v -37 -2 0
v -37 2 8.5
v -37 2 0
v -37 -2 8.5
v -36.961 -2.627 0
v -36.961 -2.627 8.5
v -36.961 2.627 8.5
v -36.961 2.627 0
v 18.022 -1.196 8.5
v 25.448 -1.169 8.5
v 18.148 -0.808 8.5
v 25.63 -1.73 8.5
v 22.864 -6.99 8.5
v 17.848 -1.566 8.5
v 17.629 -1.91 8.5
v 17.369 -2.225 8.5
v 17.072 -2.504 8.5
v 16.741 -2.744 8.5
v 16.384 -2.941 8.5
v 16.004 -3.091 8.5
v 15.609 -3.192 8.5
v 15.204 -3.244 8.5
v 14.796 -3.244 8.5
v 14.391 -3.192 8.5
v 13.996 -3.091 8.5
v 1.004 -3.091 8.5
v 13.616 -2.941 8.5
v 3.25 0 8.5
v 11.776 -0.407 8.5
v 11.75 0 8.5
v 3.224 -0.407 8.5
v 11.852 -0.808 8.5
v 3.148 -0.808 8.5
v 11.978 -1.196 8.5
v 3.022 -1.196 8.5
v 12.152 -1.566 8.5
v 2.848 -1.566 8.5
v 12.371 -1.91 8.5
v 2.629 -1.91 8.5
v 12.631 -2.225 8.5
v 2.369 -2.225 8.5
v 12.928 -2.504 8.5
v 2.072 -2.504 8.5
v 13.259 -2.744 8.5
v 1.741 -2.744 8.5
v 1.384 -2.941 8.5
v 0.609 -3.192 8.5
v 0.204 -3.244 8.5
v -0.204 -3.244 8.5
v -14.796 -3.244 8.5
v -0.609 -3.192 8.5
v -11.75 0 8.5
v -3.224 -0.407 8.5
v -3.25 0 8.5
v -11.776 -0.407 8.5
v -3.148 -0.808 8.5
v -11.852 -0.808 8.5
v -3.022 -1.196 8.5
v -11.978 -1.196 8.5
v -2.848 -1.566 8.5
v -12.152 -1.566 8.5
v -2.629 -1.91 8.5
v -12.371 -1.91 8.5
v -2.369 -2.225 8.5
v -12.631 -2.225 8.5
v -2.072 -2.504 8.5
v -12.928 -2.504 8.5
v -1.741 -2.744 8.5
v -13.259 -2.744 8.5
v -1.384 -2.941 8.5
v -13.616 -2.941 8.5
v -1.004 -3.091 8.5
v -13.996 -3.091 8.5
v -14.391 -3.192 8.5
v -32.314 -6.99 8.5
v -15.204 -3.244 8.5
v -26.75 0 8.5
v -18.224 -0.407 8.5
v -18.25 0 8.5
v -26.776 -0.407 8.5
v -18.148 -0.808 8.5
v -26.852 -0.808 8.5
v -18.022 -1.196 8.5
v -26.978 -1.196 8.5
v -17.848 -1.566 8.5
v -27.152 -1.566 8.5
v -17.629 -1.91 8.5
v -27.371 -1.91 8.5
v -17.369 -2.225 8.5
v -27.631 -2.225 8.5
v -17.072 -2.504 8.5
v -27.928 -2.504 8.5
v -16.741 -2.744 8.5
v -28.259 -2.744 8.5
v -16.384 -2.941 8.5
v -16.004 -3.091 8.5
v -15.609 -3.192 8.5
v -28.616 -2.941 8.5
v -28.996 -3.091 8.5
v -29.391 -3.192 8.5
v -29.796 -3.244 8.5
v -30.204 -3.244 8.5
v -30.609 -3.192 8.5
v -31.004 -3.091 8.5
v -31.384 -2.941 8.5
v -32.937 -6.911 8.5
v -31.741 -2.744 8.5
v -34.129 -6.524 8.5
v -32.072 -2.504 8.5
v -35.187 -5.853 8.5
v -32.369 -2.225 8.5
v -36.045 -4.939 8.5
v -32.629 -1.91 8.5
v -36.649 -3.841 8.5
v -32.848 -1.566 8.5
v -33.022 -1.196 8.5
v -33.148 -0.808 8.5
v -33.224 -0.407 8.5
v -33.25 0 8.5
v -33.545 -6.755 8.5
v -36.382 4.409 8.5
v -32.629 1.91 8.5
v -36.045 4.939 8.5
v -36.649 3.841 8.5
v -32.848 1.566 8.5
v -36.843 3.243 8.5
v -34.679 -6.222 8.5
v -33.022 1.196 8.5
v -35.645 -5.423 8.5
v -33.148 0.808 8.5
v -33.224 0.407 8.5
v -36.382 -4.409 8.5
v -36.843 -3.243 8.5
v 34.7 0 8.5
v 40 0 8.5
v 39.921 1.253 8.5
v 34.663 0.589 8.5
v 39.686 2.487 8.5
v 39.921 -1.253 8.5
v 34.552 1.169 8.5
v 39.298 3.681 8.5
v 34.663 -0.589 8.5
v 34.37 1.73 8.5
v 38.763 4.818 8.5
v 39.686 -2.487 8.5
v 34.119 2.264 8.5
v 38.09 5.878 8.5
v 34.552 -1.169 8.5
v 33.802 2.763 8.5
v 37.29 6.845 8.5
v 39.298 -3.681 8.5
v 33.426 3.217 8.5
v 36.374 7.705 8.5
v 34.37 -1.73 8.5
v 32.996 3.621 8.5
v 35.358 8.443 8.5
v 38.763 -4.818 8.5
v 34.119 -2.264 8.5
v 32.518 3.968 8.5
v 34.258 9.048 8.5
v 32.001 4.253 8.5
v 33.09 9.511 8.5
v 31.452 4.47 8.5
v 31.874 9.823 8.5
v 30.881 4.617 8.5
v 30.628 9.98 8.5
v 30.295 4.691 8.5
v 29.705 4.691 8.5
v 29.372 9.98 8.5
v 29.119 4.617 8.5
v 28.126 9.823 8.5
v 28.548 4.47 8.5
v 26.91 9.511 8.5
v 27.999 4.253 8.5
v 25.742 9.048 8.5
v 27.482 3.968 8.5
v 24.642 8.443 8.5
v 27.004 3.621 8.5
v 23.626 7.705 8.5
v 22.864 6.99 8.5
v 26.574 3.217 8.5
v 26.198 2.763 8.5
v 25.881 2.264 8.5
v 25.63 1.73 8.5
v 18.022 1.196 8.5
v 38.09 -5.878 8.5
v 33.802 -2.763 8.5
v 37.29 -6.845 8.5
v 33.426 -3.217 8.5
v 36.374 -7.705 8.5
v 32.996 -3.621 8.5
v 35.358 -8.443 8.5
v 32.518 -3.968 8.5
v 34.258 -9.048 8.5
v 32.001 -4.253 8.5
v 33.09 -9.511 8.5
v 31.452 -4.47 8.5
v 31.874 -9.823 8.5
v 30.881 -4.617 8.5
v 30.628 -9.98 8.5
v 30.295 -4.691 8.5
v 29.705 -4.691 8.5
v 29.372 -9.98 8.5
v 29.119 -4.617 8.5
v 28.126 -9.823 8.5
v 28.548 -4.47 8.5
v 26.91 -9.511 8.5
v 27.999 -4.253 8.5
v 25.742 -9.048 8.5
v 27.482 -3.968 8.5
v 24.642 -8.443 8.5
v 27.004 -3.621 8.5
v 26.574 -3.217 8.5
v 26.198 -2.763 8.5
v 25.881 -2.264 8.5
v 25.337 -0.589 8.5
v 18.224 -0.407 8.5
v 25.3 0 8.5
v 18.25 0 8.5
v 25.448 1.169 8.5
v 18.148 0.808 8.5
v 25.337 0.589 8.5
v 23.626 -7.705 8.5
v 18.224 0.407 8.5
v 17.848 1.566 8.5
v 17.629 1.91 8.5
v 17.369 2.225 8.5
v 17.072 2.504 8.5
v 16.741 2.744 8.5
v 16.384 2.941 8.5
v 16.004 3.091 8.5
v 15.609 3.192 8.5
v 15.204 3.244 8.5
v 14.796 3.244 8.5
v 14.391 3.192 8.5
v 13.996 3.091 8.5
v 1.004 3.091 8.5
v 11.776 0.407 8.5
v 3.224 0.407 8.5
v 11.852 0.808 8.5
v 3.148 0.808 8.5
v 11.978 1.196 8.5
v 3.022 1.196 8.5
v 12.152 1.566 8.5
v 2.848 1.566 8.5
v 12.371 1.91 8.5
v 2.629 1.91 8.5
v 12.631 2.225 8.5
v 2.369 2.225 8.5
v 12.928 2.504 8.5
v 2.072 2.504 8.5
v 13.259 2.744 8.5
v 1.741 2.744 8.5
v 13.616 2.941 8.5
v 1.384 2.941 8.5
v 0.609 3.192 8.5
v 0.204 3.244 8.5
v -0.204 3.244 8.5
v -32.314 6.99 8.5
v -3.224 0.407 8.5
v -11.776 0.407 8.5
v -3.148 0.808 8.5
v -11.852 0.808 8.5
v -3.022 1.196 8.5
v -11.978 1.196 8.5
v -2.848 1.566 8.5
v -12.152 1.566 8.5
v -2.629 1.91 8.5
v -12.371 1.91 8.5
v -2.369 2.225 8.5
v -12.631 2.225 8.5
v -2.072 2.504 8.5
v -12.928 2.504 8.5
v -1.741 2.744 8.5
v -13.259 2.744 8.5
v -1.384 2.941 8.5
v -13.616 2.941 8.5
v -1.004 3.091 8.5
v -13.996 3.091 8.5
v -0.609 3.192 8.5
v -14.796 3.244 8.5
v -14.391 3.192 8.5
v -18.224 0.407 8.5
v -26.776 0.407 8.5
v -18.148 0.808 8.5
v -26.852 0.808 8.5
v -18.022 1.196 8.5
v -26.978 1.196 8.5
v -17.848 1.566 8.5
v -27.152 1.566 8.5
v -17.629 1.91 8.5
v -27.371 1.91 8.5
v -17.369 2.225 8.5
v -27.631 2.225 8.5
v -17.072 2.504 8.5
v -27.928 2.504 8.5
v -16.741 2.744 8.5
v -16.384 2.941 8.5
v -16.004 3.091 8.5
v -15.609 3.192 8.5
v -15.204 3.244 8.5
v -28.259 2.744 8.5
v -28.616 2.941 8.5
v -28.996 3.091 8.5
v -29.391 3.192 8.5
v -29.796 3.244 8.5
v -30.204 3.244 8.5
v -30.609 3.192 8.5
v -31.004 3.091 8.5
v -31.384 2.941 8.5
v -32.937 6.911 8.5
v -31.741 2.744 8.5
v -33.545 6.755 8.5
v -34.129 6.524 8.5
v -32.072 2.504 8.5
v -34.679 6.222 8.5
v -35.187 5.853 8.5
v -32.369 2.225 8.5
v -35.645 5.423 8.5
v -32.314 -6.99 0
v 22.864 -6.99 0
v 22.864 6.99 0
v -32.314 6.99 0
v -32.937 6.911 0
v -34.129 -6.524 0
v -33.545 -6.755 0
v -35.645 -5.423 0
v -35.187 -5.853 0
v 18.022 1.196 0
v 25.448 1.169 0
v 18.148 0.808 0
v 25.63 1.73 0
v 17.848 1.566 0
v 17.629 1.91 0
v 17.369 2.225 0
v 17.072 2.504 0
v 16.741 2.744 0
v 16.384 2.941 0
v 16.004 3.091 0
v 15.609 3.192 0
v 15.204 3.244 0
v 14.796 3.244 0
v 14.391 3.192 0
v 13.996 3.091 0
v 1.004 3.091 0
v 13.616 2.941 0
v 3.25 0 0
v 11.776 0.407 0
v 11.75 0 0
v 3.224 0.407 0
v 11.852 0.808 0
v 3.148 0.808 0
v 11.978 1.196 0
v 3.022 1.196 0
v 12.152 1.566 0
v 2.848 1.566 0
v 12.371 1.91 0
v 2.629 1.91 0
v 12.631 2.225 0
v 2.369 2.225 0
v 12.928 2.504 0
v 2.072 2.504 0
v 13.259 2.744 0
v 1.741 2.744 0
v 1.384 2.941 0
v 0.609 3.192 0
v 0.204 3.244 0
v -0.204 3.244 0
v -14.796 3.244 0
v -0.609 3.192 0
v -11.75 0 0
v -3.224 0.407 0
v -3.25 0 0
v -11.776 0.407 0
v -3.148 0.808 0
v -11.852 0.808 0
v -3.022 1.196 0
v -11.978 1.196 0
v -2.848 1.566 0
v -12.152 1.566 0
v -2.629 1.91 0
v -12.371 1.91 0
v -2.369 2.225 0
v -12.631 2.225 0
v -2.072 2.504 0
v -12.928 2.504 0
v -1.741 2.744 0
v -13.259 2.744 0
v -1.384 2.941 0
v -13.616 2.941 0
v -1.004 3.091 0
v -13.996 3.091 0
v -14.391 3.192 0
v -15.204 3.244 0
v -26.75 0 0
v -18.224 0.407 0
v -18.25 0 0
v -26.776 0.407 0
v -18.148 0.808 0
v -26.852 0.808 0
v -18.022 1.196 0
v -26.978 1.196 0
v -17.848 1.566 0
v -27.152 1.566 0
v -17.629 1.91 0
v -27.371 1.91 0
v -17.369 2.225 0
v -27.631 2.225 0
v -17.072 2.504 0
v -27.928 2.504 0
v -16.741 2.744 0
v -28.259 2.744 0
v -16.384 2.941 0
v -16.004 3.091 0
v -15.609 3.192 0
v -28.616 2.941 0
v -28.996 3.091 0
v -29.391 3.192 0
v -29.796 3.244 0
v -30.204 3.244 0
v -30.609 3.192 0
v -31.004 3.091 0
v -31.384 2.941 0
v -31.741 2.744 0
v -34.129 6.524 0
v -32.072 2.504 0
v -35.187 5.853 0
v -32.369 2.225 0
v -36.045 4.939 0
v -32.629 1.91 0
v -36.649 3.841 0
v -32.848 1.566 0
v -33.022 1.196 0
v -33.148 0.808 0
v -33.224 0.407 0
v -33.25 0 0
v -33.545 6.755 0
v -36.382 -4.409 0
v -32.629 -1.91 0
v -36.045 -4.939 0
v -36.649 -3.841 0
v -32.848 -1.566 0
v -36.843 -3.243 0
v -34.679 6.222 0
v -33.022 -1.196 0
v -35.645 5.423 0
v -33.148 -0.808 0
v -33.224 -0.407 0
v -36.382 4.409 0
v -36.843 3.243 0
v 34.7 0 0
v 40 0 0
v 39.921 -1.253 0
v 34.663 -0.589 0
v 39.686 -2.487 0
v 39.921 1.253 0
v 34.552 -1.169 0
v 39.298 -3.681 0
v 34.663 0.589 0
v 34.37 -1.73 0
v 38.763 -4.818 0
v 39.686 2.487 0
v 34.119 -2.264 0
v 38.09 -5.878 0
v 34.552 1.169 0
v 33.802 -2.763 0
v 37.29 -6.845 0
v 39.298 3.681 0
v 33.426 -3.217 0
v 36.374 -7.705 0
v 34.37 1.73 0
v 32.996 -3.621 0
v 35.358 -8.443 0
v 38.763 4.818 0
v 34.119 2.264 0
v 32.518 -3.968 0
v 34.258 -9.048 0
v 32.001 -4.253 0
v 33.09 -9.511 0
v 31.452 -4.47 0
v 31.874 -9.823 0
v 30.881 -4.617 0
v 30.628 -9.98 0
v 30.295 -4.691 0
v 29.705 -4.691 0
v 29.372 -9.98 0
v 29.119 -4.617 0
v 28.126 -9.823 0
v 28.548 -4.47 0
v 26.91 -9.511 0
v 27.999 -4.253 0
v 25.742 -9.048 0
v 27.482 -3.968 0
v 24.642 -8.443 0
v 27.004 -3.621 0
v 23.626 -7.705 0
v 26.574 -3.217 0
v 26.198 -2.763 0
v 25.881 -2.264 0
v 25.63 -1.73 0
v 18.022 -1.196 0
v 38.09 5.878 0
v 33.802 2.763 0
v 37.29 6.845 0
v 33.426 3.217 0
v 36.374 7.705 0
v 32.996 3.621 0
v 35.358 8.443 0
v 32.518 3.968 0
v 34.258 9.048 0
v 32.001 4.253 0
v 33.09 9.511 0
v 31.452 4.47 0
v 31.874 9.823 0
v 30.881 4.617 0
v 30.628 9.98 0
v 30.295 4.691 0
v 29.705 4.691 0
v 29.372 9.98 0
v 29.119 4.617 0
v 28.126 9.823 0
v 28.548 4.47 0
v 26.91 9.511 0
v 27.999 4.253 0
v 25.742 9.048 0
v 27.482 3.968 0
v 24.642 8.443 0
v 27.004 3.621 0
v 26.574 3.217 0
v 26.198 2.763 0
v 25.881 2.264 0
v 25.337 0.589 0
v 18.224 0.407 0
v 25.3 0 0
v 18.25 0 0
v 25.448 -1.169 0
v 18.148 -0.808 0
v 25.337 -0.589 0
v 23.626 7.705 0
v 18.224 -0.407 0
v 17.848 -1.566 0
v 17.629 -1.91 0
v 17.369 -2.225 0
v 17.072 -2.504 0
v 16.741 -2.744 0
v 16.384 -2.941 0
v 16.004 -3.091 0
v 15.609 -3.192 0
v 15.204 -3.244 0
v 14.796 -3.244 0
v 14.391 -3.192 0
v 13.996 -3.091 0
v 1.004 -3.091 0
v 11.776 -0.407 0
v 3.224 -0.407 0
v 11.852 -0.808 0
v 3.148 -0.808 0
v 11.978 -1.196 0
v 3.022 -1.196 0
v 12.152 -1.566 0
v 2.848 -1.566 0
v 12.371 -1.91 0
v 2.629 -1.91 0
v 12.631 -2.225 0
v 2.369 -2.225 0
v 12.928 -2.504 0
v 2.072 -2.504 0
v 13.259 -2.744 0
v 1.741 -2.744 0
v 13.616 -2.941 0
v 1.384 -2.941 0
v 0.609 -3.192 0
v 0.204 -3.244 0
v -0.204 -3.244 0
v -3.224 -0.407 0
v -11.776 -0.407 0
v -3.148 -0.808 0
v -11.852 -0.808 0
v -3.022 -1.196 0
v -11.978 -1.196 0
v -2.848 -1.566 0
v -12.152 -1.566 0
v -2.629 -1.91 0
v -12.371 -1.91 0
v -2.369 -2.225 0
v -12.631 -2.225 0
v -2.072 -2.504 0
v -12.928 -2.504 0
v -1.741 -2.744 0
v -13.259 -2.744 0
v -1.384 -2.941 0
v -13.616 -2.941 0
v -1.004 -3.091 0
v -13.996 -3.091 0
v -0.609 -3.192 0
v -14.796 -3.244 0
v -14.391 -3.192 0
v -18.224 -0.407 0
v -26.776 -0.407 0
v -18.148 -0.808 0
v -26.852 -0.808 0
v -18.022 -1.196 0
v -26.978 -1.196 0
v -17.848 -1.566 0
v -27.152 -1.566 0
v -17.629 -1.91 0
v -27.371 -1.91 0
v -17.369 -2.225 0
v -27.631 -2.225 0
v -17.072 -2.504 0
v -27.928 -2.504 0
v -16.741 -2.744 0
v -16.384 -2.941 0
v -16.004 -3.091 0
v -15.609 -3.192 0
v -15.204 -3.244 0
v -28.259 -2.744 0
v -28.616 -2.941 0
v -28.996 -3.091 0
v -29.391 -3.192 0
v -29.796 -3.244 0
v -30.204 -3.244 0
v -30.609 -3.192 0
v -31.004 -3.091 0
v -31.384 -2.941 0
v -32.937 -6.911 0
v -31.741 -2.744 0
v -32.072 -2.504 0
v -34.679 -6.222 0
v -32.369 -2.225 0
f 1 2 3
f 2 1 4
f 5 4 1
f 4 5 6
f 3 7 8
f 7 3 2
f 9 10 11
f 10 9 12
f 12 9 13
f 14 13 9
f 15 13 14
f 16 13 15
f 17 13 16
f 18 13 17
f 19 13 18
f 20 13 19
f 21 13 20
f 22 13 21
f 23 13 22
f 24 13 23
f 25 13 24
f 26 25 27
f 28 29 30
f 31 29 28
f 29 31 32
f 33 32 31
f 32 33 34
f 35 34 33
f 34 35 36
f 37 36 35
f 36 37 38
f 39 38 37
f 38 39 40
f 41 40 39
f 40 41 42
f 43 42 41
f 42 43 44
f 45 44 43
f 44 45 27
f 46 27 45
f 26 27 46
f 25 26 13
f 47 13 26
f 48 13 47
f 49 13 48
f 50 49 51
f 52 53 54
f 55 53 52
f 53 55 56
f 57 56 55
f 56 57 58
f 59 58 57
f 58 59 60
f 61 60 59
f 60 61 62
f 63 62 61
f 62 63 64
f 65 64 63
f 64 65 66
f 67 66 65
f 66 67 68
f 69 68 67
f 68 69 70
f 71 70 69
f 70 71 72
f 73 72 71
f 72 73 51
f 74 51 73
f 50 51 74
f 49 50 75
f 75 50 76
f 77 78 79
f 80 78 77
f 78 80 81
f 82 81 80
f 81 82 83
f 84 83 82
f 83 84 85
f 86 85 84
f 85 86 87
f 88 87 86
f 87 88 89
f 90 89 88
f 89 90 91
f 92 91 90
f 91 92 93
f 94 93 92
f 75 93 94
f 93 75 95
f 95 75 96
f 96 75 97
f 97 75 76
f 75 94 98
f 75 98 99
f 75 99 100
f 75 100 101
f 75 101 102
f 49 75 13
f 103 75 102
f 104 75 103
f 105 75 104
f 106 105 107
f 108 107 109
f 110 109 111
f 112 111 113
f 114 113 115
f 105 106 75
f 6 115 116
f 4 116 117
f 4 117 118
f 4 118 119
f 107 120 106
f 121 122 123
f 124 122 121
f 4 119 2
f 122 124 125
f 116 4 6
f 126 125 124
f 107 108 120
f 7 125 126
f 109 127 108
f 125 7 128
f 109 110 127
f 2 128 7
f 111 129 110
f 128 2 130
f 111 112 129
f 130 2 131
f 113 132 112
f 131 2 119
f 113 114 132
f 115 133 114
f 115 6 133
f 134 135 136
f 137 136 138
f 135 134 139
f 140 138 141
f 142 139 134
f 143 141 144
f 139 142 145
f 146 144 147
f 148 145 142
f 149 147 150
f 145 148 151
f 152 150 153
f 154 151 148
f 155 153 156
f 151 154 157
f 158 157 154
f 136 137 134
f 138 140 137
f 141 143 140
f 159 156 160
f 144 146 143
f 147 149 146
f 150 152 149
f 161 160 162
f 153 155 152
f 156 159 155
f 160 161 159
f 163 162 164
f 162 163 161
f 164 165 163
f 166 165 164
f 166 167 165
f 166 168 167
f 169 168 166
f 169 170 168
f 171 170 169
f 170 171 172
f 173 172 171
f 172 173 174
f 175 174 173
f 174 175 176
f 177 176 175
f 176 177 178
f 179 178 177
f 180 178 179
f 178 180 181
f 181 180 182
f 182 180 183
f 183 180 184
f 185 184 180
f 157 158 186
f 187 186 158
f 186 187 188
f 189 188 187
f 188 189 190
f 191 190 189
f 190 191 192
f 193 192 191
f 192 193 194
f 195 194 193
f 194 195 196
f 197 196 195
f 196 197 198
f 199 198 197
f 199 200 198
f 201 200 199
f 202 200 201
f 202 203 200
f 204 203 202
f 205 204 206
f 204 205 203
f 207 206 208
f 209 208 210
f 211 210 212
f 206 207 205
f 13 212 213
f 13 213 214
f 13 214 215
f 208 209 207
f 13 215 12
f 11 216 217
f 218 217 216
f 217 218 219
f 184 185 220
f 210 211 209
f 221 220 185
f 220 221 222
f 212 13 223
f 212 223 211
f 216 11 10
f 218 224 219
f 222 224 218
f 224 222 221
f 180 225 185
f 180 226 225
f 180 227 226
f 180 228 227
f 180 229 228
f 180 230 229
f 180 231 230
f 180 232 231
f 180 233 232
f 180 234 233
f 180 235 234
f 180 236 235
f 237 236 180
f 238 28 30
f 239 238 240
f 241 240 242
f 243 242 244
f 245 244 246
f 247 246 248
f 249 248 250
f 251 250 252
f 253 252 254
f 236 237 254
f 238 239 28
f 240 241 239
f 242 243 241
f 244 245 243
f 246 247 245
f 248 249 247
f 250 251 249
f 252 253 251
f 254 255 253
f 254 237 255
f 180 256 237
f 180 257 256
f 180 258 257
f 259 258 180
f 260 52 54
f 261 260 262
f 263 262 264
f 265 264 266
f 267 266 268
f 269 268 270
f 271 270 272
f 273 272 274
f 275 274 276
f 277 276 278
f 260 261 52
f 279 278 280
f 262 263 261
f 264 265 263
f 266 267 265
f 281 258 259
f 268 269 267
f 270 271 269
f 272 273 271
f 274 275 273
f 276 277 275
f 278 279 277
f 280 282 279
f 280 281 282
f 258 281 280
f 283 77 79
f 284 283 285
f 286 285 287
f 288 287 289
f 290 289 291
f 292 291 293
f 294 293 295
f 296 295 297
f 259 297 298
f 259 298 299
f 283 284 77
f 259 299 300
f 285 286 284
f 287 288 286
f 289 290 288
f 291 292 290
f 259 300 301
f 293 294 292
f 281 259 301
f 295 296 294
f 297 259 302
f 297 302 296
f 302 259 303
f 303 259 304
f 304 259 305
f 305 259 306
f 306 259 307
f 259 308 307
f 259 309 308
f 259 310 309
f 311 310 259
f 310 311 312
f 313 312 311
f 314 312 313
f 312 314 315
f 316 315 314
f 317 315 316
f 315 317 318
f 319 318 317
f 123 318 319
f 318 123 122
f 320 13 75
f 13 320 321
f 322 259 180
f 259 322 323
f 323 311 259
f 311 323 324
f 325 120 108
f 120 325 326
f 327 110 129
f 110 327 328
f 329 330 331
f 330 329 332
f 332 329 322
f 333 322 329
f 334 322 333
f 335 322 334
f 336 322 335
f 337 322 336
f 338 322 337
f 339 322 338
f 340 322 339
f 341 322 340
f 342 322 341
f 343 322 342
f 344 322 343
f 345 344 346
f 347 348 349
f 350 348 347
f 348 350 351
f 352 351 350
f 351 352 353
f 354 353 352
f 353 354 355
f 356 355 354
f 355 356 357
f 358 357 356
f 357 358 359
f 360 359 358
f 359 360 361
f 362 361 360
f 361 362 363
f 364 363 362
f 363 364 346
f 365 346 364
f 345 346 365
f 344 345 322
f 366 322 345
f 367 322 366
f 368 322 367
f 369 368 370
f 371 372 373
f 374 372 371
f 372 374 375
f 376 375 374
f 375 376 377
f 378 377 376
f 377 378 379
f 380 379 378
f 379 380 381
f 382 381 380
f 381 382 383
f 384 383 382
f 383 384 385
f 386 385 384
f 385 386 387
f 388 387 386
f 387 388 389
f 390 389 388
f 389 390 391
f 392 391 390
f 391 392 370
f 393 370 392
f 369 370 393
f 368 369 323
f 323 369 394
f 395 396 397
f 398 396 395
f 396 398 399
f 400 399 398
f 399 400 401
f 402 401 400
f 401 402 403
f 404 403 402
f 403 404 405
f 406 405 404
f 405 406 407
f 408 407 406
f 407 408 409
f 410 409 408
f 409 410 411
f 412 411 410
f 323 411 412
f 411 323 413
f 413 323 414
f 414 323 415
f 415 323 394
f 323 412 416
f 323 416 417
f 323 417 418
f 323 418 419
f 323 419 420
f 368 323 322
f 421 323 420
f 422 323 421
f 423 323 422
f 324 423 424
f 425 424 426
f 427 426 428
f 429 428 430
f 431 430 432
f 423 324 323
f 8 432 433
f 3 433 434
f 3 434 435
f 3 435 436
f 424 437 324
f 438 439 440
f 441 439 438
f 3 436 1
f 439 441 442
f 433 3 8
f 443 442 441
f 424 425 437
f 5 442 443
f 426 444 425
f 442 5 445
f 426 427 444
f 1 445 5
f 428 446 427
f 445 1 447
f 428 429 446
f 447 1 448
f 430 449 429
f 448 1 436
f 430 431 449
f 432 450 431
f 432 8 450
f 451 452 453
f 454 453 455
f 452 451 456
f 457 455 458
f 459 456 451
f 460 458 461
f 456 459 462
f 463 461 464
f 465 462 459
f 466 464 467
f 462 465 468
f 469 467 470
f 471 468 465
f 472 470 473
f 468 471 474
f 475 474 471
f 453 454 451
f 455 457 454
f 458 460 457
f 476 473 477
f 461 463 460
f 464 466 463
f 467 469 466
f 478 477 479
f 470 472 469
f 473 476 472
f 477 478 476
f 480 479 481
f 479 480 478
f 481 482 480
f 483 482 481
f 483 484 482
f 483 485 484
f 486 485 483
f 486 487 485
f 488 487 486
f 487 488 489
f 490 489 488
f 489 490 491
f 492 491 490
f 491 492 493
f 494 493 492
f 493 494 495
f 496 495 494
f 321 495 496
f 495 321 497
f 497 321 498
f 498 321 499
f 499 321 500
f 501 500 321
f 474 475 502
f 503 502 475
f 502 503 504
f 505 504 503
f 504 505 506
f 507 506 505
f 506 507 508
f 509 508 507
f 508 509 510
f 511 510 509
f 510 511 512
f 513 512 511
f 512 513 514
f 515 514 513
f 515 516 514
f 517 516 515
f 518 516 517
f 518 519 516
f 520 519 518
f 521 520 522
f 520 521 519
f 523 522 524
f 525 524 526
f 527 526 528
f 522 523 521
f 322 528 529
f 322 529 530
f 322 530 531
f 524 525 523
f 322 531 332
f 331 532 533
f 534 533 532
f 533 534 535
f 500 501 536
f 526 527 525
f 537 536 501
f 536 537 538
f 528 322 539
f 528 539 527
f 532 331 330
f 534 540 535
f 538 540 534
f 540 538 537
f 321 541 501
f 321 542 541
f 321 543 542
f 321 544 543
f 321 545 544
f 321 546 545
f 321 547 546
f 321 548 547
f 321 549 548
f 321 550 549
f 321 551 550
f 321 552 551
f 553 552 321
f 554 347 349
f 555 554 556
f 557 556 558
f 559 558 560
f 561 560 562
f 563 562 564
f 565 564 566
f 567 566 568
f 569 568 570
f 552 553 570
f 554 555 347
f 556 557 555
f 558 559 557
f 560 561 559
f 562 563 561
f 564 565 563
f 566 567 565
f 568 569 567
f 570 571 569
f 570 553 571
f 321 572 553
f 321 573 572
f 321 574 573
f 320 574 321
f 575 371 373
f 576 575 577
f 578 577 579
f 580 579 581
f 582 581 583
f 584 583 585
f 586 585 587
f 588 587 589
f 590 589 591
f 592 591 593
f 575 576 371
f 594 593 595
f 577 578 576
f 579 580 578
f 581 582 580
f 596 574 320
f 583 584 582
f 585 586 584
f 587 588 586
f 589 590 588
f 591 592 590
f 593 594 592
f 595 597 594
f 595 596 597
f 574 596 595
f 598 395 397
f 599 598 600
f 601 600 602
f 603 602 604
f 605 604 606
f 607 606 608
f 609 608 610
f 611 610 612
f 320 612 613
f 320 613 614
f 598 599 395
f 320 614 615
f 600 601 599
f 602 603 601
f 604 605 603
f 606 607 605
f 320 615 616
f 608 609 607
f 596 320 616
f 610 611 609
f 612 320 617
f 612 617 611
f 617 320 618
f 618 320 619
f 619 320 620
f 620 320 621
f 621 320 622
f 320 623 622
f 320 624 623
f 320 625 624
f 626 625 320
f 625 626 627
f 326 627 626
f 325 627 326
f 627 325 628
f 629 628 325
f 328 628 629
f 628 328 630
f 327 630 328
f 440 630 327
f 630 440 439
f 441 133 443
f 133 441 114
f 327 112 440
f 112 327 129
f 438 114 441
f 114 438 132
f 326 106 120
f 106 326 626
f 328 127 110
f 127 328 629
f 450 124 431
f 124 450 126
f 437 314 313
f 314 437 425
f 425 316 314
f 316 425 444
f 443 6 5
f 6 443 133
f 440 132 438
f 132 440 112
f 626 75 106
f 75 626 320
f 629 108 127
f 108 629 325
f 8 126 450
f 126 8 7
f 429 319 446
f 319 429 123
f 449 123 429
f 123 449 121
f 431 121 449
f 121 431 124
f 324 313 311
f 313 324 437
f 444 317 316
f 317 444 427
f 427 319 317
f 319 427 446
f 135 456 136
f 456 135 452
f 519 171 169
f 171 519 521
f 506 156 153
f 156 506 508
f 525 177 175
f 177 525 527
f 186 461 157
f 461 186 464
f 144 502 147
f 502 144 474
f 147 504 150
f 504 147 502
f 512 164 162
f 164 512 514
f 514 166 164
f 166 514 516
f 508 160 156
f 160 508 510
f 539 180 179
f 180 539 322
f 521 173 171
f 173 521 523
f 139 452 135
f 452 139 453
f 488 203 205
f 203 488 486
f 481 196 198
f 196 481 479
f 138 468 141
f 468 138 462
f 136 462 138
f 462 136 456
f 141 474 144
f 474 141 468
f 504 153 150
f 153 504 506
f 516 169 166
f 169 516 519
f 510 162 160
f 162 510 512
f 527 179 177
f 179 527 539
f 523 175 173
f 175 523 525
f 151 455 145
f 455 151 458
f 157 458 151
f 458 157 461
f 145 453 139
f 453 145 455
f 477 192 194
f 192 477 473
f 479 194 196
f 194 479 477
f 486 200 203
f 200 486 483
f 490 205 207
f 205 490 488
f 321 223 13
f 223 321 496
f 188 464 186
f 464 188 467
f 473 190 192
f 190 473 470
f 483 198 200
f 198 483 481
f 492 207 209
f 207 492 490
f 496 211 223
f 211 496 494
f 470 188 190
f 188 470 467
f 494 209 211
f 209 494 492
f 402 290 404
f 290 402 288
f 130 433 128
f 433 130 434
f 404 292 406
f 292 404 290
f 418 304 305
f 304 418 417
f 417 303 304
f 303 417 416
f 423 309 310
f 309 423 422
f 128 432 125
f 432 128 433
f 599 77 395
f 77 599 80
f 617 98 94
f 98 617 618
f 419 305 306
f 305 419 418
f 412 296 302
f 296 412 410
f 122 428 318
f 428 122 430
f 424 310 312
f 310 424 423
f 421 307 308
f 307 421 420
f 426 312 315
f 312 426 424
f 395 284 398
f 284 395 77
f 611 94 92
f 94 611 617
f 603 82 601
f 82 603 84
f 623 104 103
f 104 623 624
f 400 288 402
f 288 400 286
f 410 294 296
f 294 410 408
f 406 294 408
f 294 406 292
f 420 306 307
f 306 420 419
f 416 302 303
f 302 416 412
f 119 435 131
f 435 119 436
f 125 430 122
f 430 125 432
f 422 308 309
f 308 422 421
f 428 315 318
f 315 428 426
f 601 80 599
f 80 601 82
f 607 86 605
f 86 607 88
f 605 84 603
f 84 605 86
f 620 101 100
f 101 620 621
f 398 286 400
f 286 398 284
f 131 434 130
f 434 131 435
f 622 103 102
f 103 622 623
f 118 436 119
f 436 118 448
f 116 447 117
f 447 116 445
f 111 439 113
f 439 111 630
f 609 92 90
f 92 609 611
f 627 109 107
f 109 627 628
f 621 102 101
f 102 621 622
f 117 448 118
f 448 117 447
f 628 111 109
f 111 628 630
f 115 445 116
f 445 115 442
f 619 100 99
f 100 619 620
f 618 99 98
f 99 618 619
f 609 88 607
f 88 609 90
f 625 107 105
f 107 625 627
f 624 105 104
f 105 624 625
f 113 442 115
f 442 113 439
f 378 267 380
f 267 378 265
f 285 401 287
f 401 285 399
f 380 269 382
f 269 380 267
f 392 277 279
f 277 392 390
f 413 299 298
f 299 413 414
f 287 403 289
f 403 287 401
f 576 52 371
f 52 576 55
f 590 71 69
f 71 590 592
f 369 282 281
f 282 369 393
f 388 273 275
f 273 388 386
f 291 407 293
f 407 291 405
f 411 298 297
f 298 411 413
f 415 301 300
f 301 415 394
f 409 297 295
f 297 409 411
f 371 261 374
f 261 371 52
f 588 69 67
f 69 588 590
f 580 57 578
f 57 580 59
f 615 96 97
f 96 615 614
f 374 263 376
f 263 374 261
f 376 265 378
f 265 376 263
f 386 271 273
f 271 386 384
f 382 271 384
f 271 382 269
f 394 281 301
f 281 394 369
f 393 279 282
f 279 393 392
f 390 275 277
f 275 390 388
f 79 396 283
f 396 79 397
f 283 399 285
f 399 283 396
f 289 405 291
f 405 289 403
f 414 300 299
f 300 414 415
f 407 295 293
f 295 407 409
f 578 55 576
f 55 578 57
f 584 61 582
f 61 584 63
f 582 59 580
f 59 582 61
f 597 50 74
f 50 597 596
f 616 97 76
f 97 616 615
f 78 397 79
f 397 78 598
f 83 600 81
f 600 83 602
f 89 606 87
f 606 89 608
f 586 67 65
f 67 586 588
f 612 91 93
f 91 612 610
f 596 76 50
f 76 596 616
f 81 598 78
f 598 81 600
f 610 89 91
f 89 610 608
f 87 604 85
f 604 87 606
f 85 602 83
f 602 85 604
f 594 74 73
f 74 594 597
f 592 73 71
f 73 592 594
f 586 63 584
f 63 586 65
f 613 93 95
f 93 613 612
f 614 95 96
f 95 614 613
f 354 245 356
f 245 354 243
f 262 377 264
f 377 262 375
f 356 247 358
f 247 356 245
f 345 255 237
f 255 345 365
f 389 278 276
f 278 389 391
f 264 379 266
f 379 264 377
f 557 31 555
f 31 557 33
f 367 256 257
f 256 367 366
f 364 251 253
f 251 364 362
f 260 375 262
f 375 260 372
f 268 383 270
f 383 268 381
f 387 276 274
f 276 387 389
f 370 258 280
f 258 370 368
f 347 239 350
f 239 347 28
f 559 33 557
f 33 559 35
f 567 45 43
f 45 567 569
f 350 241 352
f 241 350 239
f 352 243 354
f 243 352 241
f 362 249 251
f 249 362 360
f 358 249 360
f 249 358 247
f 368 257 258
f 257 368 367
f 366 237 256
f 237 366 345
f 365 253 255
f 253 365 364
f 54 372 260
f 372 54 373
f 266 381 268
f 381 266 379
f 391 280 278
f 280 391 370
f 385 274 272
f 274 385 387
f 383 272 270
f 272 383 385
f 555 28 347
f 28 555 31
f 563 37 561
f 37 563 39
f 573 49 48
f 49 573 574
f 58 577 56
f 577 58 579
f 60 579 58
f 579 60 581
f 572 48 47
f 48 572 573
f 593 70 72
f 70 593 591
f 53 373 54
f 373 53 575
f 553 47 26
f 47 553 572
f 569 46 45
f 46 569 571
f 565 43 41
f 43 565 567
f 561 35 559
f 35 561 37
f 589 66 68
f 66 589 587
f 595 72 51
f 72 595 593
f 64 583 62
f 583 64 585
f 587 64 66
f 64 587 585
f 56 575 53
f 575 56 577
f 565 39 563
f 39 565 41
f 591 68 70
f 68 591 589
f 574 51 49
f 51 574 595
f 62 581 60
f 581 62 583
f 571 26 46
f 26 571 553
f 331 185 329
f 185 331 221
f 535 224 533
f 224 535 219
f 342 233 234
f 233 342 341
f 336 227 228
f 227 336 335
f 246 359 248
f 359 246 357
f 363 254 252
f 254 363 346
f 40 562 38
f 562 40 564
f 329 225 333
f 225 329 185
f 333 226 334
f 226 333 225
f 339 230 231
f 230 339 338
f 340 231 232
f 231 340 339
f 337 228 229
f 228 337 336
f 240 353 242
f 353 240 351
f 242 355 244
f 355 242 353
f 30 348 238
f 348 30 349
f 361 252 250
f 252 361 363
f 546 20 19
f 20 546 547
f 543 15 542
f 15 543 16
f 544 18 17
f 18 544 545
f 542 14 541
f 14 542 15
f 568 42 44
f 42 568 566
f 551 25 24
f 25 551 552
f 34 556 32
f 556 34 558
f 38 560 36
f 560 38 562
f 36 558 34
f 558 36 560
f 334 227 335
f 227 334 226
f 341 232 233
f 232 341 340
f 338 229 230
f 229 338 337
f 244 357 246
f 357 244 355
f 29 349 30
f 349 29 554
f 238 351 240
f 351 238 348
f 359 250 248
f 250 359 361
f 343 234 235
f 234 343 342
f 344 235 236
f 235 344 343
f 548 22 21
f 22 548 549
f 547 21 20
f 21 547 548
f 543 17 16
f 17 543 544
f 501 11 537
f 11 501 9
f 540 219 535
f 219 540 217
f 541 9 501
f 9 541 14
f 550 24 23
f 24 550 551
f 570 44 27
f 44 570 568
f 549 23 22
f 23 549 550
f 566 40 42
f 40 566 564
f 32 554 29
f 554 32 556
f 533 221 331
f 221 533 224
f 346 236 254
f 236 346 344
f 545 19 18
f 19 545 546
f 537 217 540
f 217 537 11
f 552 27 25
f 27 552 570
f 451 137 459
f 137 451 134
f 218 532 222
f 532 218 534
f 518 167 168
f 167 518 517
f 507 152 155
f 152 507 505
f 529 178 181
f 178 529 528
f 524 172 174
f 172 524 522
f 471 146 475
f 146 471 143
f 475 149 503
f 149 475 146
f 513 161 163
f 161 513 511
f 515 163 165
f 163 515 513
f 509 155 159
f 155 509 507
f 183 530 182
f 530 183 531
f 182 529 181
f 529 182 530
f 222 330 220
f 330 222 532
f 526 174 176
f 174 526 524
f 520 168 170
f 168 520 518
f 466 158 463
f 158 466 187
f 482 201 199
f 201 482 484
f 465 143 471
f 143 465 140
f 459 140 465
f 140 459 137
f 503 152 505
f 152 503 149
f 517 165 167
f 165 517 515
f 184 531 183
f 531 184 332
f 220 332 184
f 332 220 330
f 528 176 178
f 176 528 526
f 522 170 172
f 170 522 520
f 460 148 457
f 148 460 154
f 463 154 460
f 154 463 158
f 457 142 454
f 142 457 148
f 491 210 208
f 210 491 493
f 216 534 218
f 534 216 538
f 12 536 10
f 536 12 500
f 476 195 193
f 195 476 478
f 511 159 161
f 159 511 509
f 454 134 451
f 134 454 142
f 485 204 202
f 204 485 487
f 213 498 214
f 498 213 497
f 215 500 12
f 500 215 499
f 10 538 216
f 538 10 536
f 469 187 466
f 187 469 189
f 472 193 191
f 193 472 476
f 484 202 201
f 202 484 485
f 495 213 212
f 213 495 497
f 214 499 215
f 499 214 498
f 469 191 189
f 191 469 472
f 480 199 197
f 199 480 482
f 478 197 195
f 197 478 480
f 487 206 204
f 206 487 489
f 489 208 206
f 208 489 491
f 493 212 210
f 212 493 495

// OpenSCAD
$fn = 50;


difference() {
	union() {
		translate(v = [0, 0, 0]) {
			rotate(a = [0, 0, 0]) {
				hull() {
					translate(v = [-32.0000000000, 2.0000000000, 0]) {
						rotate(a = [0, 0, 0]) {
							translate(v = [0, 0, 0]) {
								rotate(a = [0, 0, 0]) {
									cylinder(h = 8.5000000000, r = 5);
								}
							}
						}
					}
					translate(v = [32.0000000000, 2.0000000000, 0]) {
						rotate(a = [0, 0, 0]) {
							translate(v = [0, 0, 0]) {
								rotate(a = [0, 0, 0]) {
									cylinder(h = 8.5000000000, r = 5);
								}
							}
						}
					}
					translate(v = [-32.0000000000, -2.0000000000, 0]) {
						rotate(a = [0, 0, 0]) {
							translate(v = [0, 0, 0]) {
								rotate(a = [0, 0, 0]) {
									cylinder(h = 8.5000000000, r = 5);
								}
							}
						}
					}
					translate(v = [32.0000000000, -2.0000000000, 0]) {
						rotate(a = [0, 0, 0]) {
							translate(v = [0, 0, 0]) {
								rotate(a = [0, 0, 0]) {
									cylinder(h = 8.5000000000, r = 5);
								}
							}
						}
					}
				}
			}
		}
		translate(v = [30.0000000000, 0, 0.0000000000]) {
			rotate(a = [0, 0, 0]) {
				cylinder(h = 8.5000000000, r = 10.0000000000);
			}
		}
	}
	union() {
		translate(v = [-30.0000000000, 0.0000000000, 0]) {
			rotate(a = [0, 0, 0]) {
				translate(v = [0, 0, -50]) {
					rotate(a = [0, 0, 0]) {
						cylinder(h = 100, r = 3.2500000000);
					}
				}
			}
		}
		translate(v = [-15.0000000000, 0.0000000000, 0]) {
			rotate(a = [0, 0, 0]) {
				translate(v = [0, 0, -50]) {
					rotate(a = [0, 0, 0]) {
						cylinder(h = 100, r = 3.2500000000);
					}
				}
			}
		}
		translate(v = [0.0000000000, 0.0000000000, 0]) {
			rotate(a = [0, 0, 0]) {
				translate(v = [0, 0, -50]) {
					rotate(a = [0, 0, 0]) {
						cylinder(h = 100, r = 3.2500000000);
					}
				}
			}
		}
		translate(v = [15.0000000000, 0.0000000000, 0]) {
			rotate(a = [0, 0, 0]) {
				translate(v = [0, 0, -50]) {
					rotate(a = [0, 0, 0]) {
						cylinder(h = 100, r = 3.2500000000);
					}
				}
			}
		}
		translate(v = [30.0000000000, 0.0000000000, 0]) {
			rotate(a = [0, 0, 0]) {
				translate(v = [0, 0, -50]) {
					rotate(a = [0, 0, 0]) {
						cylinder(h = 100, r = 3.2500000000);
					}
				}
			}
		}
		translate(v = [30.0000000000, 0, -125.0000000000]) {
			rotate(a = [0, 0, 0]) {
				cylinder(h = 250, r = 4.7000000000);
			}
		}
	}
}
